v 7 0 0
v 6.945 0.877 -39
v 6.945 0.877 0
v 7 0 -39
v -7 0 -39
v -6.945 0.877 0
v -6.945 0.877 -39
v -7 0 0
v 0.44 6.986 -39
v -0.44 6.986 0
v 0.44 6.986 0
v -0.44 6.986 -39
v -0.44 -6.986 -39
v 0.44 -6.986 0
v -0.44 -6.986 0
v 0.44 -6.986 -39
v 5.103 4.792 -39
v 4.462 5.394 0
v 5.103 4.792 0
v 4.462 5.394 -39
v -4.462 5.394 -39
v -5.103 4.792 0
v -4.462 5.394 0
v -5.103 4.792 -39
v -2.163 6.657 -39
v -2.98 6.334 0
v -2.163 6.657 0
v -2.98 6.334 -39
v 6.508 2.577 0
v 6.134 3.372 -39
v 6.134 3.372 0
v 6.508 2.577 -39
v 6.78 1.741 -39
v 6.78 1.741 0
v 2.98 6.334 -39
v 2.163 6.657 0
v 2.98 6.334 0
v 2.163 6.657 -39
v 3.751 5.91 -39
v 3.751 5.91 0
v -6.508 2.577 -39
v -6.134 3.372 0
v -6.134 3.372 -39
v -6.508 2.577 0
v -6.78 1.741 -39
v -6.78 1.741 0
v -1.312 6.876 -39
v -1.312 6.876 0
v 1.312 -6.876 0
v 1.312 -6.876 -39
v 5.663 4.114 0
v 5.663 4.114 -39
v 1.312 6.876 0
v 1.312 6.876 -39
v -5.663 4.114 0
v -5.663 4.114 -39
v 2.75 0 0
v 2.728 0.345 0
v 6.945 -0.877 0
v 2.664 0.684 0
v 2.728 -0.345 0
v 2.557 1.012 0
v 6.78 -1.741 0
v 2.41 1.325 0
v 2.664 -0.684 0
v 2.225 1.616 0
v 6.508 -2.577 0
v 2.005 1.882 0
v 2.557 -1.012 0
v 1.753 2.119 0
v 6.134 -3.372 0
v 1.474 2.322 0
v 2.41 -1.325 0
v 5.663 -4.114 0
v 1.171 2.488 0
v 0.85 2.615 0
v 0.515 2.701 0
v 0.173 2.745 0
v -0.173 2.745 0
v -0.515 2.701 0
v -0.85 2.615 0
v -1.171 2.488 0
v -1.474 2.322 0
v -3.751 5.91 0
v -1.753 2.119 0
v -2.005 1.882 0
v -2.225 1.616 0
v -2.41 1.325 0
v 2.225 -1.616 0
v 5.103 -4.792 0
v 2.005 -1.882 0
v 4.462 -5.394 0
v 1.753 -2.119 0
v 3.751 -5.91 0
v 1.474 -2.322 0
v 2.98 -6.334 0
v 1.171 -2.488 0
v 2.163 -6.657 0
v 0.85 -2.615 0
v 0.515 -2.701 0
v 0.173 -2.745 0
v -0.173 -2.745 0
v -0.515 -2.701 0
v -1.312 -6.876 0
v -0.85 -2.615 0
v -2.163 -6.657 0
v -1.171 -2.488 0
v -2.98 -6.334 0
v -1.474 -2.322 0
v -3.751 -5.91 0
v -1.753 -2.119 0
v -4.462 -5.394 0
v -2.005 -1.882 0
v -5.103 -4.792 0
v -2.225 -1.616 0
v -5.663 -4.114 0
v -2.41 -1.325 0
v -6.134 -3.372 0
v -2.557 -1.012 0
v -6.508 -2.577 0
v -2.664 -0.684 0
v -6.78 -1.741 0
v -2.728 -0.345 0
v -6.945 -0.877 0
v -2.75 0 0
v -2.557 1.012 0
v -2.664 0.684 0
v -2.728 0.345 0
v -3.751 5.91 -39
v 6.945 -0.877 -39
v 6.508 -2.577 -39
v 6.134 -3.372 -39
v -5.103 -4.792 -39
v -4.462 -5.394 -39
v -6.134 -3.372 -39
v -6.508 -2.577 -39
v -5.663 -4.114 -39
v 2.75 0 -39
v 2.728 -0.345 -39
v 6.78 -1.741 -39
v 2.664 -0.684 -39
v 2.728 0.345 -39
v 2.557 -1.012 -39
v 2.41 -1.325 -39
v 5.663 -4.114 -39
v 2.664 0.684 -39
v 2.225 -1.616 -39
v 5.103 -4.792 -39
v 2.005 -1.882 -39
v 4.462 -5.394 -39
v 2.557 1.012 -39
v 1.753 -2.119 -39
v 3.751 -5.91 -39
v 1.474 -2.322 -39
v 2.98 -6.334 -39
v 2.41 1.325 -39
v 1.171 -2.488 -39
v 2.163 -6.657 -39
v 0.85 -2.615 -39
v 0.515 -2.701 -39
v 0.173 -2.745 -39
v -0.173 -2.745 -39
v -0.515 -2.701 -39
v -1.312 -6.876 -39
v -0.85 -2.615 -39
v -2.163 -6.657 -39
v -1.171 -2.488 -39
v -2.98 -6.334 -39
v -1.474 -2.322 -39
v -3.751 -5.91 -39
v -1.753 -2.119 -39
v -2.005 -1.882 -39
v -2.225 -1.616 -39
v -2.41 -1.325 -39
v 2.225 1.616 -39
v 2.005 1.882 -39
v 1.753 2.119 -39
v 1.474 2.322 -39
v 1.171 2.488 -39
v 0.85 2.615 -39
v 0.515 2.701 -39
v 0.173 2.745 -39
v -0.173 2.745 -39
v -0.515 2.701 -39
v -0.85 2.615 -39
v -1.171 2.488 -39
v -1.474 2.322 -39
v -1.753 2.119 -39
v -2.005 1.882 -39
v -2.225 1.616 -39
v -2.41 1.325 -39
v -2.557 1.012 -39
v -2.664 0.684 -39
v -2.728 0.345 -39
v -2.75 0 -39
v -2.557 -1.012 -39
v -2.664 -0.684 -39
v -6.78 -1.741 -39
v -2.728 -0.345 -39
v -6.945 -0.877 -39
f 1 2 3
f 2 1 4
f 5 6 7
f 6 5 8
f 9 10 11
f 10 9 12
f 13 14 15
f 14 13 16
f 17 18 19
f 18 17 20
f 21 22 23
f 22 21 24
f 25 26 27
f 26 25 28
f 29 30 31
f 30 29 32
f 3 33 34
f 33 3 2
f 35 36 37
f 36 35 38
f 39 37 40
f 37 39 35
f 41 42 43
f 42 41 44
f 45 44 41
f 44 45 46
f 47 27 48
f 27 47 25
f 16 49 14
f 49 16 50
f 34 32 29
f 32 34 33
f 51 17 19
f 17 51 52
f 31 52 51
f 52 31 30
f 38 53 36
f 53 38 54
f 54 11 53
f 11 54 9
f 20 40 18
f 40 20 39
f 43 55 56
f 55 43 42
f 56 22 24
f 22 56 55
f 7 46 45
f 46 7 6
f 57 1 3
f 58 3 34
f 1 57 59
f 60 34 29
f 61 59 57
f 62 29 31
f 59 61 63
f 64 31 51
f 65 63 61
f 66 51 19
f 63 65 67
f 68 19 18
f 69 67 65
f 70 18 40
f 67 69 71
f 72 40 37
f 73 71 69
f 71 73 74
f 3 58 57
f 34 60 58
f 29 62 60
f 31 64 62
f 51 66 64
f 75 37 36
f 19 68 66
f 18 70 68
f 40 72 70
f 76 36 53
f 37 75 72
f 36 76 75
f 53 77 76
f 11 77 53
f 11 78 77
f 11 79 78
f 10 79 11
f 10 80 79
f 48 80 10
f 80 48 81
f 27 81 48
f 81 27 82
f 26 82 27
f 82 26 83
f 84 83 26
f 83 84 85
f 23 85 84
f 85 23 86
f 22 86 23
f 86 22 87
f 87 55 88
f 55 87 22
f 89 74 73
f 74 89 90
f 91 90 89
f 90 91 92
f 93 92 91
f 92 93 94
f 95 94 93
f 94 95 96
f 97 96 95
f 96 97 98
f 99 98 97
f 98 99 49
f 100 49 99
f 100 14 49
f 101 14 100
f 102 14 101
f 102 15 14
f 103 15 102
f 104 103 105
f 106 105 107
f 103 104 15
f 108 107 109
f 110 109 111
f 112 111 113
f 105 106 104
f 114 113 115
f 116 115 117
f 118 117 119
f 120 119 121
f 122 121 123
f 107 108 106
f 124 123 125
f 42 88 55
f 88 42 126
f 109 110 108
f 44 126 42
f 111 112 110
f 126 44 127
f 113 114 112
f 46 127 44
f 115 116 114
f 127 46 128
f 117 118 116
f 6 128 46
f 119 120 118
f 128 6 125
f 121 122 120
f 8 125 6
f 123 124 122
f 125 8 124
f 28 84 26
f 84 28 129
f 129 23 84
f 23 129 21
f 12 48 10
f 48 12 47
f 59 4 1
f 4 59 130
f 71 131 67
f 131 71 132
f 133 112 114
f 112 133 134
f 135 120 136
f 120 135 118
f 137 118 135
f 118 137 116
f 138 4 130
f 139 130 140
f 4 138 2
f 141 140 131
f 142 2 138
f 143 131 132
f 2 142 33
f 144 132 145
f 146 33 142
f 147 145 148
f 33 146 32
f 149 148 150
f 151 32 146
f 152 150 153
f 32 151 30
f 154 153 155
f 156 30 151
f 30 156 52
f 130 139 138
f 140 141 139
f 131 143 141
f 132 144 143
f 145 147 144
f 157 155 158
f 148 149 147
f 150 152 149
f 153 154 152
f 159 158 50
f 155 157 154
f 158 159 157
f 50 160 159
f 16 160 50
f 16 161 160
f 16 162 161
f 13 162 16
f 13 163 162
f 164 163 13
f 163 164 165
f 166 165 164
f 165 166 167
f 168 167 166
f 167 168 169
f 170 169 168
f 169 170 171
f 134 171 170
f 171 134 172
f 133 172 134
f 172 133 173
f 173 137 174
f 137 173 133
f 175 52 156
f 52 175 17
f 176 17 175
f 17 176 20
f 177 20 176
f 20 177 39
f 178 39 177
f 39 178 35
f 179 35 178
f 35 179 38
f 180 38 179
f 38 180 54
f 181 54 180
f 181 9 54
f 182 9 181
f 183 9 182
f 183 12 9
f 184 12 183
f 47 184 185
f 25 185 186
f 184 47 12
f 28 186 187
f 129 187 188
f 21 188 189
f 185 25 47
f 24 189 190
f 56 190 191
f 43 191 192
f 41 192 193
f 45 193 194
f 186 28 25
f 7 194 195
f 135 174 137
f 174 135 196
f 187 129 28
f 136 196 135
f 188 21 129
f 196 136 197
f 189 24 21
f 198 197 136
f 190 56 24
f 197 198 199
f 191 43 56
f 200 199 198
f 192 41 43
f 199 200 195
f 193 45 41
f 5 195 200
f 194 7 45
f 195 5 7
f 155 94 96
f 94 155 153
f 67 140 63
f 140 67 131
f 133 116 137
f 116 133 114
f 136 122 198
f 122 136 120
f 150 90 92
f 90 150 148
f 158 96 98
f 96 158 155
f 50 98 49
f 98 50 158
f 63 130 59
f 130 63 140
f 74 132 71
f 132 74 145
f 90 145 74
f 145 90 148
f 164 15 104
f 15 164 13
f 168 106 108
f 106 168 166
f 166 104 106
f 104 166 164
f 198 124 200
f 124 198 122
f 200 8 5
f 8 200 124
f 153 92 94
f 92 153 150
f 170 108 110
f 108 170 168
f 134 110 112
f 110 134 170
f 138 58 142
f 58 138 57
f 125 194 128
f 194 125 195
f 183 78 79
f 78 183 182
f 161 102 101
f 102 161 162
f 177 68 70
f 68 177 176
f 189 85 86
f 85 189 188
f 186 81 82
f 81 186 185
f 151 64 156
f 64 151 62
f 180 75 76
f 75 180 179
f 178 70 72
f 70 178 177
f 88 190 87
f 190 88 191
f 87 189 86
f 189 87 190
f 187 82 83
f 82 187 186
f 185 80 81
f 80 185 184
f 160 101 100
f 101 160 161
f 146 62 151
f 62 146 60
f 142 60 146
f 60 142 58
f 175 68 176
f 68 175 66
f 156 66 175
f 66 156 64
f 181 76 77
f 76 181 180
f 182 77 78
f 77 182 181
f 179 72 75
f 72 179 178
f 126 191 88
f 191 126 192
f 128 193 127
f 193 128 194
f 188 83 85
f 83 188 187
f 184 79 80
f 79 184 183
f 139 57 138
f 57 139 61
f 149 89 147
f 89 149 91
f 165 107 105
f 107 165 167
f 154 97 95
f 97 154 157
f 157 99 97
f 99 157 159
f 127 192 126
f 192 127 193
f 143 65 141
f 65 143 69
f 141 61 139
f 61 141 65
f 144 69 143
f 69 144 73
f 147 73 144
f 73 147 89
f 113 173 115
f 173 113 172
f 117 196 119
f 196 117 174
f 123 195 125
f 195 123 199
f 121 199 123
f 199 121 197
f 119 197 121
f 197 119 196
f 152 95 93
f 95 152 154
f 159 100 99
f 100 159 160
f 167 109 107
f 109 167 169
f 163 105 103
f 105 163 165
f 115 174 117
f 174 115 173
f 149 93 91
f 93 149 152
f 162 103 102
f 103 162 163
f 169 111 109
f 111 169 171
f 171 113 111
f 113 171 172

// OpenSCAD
$fn = 50;


difference() {
	union() {
		translate(v = [0, 0, -39.0000000000]) {
			cylinder(h = 39, r = 7.0000000000);
		}
		cylinder(h = 0, r = 13.0000000000);
	}
	union() {
		#translate(v = [0, 0, -39]) {
			cylinder(h = 39, r = 2.7500000000);
		}
	}
}
